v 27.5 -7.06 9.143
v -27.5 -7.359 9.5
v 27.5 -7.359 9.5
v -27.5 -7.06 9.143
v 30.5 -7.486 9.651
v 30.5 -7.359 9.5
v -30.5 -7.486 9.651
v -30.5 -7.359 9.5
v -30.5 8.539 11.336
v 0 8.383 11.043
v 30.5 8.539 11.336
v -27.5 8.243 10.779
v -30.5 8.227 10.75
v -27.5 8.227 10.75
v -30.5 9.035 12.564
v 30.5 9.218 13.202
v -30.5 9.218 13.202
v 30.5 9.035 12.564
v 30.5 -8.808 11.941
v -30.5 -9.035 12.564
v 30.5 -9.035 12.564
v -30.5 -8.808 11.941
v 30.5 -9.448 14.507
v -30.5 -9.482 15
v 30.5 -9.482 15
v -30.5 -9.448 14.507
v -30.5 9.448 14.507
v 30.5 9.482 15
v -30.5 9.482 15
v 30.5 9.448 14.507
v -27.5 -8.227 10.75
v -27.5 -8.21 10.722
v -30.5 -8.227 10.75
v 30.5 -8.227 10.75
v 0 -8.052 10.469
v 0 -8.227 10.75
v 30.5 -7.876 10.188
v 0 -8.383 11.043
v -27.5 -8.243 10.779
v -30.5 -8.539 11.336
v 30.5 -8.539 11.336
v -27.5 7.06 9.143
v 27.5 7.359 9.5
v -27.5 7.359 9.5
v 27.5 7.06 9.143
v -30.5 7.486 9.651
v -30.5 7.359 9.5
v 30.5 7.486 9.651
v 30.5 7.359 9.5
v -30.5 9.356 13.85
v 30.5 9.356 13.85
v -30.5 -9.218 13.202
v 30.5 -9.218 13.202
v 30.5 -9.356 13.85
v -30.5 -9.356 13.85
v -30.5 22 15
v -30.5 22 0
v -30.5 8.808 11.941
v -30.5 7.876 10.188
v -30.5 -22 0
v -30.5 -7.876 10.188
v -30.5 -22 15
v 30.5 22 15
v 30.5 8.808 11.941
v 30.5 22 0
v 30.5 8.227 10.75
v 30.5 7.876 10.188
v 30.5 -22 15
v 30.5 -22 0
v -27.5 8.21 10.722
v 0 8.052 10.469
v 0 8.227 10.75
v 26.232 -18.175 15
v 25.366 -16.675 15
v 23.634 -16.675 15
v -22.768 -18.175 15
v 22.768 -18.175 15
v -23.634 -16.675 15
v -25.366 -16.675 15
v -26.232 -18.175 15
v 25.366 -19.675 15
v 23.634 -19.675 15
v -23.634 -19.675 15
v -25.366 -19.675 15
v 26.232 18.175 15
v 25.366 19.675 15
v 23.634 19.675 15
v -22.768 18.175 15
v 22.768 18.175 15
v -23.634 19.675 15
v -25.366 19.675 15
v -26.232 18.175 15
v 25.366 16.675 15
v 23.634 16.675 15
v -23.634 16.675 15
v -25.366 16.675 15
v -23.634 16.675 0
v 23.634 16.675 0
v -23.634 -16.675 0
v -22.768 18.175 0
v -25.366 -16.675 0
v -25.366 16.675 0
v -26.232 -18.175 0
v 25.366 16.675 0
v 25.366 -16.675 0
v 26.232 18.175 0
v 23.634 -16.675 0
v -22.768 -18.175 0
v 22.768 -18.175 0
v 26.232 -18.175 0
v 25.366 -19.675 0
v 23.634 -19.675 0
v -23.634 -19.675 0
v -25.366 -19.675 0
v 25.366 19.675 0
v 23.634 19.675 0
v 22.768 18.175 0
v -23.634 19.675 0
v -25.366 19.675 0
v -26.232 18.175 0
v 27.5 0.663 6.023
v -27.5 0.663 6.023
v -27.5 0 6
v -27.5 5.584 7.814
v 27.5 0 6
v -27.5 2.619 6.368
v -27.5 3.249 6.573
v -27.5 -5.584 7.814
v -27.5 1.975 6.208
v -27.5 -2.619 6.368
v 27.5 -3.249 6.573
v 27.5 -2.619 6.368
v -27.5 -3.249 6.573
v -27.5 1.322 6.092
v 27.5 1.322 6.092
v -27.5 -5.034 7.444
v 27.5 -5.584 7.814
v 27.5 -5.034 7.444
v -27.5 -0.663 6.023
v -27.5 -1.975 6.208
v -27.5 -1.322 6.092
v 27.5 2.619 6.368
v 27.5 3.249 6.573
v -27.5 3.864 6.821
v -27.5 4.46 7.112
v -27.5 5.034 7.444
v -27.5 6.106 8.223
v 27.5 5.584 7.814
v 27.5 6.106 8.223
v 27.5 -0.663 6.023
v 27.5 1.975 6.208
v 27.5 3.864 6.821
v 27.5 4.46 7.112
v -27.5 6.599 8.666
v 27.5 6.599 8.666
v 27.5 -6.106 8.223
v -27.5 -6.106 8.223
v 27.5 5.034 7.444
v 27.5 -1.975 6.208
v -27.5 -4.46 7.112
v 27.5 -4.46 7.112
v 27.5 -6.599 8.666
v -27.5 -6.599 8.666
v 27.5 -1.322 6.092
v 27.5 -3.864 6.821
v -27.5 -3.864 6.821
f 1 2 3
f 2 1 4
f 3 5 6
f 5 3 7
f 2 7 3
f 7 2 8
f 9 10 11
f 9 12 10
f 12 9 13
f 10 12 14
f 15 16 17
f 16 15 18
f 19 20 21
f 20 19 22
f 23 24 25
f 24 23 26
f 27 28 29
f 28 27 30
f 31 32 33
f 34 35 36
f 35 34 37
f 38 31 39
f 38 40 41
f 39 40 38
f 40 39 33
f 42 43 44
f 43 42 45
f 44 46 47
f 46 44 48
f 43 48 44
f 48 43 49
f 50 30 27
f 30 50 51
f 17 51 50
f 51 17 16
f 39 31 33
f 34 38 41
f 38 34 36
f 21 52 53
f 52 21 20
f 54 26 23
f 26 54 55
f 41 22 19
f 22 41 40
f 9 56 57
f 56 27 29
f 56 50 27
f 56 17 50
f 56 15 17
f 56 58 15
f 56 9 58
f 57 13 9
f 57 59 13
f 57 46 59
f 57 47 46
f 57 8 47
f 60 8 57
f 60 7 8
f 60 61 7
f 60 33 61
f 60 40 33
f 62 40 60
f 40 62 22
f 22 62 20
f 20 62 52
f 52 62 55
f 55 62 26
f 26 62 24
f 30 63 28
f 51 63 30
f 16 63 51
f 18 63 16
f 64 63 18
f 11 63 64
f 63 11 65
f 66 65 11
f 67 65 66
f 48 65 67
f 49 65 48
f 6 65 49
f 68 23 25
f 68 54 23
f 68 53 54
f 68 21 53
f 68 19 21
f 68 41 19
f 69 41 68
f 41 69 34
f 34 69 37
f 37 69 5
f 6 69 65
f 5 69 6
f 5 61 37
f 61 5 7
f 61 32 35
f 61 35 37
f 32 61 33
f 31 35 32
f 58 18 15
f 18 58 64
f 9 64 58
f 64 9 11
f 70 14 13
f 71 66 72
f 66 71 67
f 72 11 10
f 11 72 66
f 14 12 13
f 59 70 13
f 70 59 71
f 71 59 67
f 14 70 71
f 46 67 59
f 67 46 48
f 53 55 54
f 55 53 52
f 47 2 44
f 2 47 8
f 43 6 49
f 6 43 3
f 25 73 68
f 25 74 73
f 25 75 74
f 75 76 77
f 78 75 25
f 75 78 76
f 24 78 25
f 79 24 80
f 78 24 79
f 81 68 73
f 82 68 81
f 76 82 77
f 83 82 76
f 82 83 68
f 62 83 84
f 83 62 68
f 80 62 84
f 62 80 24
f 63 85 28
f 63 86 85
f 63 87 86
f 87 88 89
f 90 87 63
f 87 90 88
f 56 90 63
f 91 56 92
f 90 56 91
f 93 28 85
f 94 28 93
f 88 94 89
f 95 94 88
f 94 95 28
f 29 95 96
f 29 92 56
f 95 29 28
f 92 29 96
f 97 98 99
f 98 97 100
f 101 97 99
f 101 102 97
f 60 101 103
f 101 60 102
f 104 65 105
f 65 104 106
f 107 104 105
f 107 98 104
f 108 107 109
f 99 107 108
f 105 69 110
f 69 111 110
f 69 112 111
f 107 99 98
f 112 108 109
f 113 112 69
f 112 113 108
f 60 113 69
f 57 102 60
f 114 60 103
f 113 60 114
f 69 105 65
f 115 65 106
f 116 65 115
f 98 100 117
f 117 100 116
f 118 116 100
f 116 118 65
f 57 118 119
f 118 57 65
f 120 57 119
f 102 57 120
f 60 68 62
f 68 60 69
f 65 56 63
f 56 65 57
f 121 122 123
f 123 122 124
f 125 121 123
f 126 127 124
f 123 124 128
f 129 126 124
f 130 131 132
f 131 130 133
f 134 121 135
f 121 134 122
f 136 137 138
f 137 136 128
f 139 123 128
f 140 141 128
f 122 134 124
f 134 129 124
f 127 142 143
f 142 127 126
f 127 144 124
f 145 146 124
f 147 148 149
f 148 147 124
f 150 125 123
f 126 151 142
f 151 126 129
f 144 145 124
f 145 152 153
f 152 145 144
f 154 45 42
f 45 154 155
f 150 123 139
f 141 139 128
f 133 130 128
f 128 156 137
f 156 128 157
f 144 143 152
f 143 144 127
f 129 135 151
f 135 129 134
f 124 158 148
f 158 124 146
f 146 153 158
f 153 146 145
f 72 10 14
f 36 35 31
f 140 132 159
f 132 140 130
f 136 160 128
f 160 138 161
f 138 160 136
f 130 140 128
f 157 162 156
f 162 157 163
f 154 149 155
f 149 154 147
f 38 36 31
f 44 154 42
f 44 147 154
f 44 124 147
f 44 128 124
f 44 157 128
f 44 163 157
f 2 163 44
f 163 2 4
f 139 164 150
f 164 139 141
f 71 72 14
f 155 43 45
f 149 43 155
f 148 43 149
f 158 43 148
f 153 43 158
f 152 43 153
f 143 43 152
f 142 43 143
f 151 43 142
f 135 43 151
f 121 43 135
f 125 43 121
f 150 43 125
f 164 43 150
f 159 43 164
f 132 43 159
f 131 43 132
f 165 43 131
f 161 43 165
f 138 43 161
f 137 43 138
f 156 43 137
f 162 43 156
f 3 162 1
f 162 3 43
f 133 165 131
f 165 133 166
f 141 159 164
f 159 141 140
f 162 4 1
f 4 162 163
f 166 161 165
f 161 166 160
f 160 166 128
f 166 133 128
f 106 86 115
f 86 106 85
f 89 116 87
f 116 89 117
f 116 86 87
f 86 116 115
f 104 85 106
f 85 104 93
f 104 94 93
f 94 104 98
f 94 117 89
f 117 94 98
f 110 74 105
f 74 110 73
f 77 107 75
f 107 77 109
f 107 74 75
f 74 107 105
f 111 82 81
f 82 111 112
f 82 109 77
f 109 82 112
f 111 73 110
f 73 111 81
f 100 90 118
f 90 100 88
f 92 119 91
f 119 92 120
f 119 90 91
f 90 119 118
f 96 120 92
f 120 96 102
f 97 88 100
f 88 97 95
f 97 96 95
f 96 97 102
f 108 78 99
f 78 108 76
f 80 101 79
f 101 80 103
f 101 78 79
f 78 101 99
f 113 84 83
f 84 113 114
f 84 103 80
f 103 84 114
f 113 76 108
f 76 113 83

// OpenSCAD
// file: polyhole.scad
// The Cylinder is dead! Long live the Cylinder!
// A module for a polyhole by radius, based on Nophead's work.

module polyhole(h, r, cent = false)
{
    n = max(round(4 * r), 3);
    cylinder(h = h, r = r / cos(180 / n), $fn = n, center = cent);
}
// main file
use<polyhole.scad>

ZBearingClamp();

module ZBearingClamp()
{
    difference()
    {
        union()
        {
            translate([0, 0, (18/2+6)/2])
                cube([55+3+3, 20+5+5+7+7, 18/2+6], center = true);
        }
        difference()
        {
            translate([0, 0, 19/2+6])
                rotate([0, 90, 0])
                    cylinder(h = 55+3+3, r = 19/2, center = true, $fn = 90);
            translate([0, 0, (6+3.5)/2])
                cube([55+3+3, 20+5+5+7+7, 6+3.5], center = true);
        }
        translate([0, 0, 19/2+6])
                rotate([0, 90, 0])
                    cylinder(h = 55, r = 19/2, center = true, $fn = 90);
        translate([((55+3+3)/2-6), (10+5+(5.5/(2*cos(30)))), 0])
            polyhole(18/2+6, 1.5);
        translate([((55+3+3)/2-6), -(10+5+(5.5/(2*cos(30)))), 0])
            polyhole(18/2+6, 1.5);
        translate([-((55+3+3)/2-6), (10+5+(5.5/(2*cos(30)))), 0])
            polyhole(18/2+6, 1.5);
        translate([-((55+3+3)/2-6), -(10+5+(5.5/(2*cos(30)))), 0])
            polyhole(18/2+6, 1.5);
    }
}
